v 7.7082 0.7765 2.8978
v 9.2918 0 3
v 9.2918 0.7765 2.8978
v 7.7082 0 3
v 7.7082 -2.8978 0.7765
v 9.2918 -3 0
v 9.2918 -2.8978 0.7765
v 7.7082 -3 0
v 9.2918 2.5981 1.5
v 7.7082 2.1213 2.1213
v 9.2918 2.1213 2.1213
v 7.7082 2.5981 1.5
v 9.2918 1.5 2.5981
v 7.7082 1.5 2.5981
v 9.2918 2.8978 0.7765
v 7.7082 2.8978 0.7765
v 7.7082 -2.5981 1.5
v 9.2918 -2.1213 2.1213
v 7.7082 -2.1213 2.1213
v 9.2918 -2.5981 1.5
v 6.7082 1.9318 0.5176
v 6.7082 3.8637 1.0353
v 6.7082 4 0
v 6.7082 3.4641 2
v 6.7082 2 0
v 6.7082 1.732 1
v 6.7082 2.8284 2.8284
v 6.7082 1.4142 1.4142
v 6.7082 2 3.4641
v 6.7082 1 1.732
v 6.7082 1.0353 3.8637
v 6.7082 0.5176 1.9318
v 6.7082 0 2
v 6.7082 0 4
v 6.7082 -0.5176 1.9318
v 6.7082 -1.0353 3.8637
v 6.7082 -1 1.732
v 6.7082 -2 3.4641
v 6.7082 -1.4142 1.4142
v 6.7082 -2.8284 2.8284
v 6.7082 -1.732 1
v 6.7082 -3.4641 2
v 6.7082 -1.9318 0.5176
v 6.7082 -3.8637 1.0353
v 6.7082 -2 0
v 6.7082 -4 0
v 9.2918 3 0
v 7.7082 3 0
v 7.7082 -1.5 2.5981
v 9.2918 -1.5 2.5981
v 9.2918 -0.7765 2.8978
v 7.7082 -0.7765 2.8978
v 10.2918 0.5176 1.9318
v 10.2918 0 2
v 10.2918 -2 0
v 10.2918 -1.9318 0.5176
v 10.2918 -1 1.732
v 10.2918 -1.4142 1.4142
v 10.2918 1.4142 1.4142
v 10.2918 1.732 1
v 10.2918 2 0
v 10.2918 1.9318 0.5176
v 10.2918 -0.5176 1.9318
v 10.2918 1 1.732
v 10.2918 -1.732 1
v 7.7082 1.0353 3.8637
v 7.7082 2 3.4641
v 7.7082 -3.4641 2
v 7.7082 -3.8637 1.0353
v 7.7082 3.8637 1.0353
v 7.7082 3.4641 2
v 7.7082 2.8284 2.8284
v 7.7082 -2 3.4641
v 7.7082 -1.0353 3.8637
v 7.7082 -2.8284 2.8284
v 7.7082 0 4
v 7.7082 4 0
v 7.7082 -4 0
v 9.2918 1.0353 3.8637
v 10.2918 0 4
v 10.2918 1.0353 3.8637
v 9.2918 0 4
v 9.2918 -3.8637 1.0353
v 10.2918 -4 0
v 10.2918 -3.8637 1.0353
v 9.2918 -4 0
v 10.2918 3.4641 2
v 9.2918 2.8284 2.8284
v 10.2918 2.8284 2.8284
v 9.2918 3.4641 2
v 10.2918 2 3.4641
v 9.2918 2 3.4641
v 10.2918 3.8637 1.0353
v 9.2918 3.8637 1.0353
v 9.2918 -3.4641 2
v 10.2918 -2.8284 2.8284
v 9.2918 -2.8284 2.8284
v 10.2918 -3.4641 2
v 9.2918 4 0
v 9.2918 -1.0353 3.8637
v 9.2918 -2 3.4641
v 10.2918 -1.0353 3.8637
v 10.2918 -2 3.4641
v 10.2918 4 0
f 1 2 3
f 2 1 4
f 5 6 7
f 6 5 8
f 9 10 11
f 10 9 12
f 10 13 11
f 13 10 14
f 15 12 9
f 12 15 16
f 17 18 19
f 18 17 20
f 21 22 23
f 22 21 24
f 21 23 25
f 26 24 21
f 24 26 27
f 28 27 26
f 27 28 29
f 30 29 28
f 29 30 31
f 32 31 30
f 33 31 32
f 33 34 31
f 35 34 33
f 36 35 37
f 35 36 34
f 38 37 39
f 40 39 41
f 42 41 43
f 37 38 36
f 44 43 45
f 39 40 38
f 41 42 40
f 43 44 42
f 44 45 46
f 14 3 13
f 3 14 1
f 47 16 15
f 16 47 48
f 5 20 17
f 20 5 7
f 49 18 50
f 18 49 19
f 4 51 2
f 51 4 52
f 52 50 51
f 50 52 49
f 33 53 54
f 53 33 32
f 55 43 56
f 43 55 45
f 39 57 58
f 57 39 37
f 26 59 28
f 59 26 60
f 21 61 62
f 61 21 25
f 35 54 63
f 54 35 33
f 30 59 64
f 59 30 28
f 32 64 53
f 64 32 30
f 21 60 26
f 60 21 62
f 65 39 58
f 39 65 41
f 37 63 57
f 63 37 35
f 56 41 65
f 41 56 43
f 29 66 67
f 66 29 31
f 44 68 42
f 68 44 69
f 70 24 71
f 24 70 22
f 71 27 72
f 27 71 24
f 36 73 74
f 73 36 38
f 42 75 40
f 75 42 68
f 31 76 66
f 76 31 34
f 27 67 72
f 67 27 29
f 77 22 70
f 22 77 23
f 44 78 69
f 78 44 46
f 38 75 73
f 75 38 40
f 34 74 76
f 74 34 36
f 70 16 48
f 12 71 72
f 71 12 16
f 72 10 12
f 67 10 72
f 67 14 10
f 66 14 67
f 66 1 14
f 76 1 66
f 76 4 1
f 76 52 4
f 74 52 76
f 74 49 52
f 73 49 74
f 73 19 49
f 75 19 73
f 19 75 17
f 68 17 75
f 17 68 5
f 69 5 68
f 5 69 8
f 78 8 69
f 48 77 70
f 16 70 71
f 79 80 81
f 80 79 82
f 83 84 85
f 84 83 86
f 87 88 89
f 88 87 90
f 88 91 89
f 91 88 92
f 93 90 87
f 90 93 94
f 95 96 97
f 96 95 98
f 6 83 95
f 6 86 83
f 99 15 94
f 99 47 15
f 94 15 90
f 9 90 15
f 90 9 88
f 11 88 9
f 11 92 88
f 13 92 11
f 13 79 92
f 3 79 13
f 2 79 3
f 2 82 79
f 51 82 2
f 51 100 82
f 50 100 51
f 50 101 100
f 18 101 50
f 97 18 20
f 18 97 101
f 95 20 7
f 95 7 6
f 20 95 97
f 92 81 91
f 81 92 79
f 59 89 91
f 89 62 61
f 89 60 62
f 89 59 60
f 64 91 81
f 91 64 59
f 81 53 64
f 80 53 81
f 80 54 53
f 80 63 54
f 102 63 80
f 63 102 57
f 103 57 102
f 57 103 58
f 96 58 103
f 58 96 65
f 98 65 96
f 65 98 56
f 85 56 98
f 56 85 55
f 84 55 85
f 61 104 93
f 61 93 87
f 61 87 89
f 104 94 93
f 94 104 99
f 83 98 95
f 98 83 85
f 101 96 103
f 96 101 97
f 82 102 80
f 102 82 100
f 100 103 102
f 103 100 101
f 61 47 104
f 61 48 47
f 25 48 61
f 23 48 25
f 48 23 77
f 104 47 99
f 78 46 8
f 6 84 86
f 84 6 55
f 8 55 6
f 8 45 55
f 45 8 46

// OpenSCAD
// file: ../build_environments.scad
// build_environments.scad: modules to build level sections
//

module pool(diameter=10.0, wall_height=2.0, step_width=3.0, connections=[])
{
    difference() {
        union() {
        difference() {
            cylinder(h=0.5,r1=diameter+step_width,r2=diameter+step_width,$fn=48);
            translate([0,0,-0.1])
                cylinder(h=0.7,r1=diameter,r2=diameter,$fn=48);
        }
        difference() {
            cylinder(h=wall_height,r1=diameter+step_width+1.0,r2=diameter+step_width+1.0,$fn=48);
            translate([0,0,-0.1])
                cylinder(h=wall_height+0.2,r1=diameter+step_width,r2=diameter+step_width,$fn=48);
        }
        }
    
        for (c = connections)
        {
            rotate([0,90,0]) {
                angle = atan2(c[1],c[0]);
                rotate([-angle,0,0]) {
                    cylinder(h=diameter+5.0,r1=c[2],r2=c[2],$fn=48);
                }
            }
        }
    }
}

module straight(length=10.0, width=2.0, dy1=0.0, dy2=0.0, dz=0.0)
{
    dims = [0, 0, 0, 0, 0, (dz/length)];
    matrix = [
        [ 1, dims[0], dims[1], 0 ],
        [ dims[2], 1, dims[4], 0 ],
        [ dims[5], dims[3], 1, 0 ],
        [ 0, 0, 0, 1 ]
    ];
    multmatrix(matrix)
    difference() {
        translate([dy1,0,0])
        union() {
            rotate([0,90,0]) {
                difference() {
                    cylinder(h=(length-dy1-dy2),r1=width+1.0,r2=width+1.0,$fn=24);
                    translate([0,0,-0.1])
                        cylinder(h=(length-dy1-dy2+0.2),r1=width,r2=width,$fn=24);
                }
                difference() {
                    cylinder(h=1.0,r1=width+2.0,r2=width+2.0,$fn=24);
                    translate([0,0,-0.1])
                        cylinder(h=1.2,r1=width,r2=width,$fn=24);
                }
                translate([0,0,(length-dy1-dy2)-1.0]) {
                    difference() {
                        cylinder(h=1.0,r1=width+2.0,r2=width+2.0,$fn=24);
                        translate([0,0,-0.1])
                            cylinder(h=1.2,r1=width,r2=width,$fn=24);
                    }
                }
            }
        }
        translate([0,0,-(2*width+4.0)/2])
            cube([3*length,3*length,2*width+4.0],center=true);
    }
}

module curve(p0=[0,0], center=[0,0], dir=1, angle=0.0, width=2.0)
{
    radius = sqrt((p0[0]-center[0])*(p0[0]-center[0]) + (p0[1]-center[1])*(p0[1]-center[1]));
    if (dir == 0) {
        difference() {
            rotate([0,0,-90])
            difference() {
                rotate_extrude(angle = angle, convexity = 10, $fn=32)
                    translate([radius, 0, 0])
                        circle(r = width+1.0,$fn=24);
                rotate([0,0,-1.0])
                    rotate_extrude(angle = angle+2.0, convexity = 10, $fn=32)
                        translate([radius, 0, 0])
                            circle(r = width,$fn=24);
            }
            translate([0,0,-(2*width+4.0)/2])
                cube([5*radius,5*radius,2*width+4.0],center=true);
        }
    }
    else {
        difference() {
            rotate([0,0,90])
            difference() {
                rotate_extrude(angle = -angle, convexity = 10, $fn=32)
                    translate([radius, 0, 0])
                        circle(r = width+1.0,$fn=24);
                rotate([0,0,1.0])
                    rotate_extrude(angle = -angle-2.0, convexity = 10, $fn=32)
                        translate([radius, 0, 0])
                            circle(r = width,$fn=24);
            }
            translate([0,0,-(2*width+4.0)/2])
                cube([5*radius,5*radius,2*width+4.0],center=true);
        }
    }

}

// test pool
//pool(diameter=12.0000, wall_height=3.0000, step_width=3.0000, connections=[[0.0000,-26.0000,2.0000], [23.6074,0.0000,2.0000]]);

// test straight, slope
//straight(length=26.0000, width=2.0000, dy1=11.8322, dy2=6.7082, dz=0.0000);
//straight(length=29.1549, width=12.0000, dy1=0.0000, dy2=0.0000, dz=-15.0000);

// test curve
//curve(p0=[23.6074, 0.0000], center=[23.6074, 5.0000], dir=0, angle=60.1011, width=2.0000);
//curve(p0=[33.6426, 12.4219], center=[37.9771, 9.9295], dir=1, angle=120.4627, width=2.0000);
// main file
use <../build_environments.scad>;
straight(length=17.0000, width=2.0000, dy1=6.7082, dy2=6.7082, dz=0.0000);
